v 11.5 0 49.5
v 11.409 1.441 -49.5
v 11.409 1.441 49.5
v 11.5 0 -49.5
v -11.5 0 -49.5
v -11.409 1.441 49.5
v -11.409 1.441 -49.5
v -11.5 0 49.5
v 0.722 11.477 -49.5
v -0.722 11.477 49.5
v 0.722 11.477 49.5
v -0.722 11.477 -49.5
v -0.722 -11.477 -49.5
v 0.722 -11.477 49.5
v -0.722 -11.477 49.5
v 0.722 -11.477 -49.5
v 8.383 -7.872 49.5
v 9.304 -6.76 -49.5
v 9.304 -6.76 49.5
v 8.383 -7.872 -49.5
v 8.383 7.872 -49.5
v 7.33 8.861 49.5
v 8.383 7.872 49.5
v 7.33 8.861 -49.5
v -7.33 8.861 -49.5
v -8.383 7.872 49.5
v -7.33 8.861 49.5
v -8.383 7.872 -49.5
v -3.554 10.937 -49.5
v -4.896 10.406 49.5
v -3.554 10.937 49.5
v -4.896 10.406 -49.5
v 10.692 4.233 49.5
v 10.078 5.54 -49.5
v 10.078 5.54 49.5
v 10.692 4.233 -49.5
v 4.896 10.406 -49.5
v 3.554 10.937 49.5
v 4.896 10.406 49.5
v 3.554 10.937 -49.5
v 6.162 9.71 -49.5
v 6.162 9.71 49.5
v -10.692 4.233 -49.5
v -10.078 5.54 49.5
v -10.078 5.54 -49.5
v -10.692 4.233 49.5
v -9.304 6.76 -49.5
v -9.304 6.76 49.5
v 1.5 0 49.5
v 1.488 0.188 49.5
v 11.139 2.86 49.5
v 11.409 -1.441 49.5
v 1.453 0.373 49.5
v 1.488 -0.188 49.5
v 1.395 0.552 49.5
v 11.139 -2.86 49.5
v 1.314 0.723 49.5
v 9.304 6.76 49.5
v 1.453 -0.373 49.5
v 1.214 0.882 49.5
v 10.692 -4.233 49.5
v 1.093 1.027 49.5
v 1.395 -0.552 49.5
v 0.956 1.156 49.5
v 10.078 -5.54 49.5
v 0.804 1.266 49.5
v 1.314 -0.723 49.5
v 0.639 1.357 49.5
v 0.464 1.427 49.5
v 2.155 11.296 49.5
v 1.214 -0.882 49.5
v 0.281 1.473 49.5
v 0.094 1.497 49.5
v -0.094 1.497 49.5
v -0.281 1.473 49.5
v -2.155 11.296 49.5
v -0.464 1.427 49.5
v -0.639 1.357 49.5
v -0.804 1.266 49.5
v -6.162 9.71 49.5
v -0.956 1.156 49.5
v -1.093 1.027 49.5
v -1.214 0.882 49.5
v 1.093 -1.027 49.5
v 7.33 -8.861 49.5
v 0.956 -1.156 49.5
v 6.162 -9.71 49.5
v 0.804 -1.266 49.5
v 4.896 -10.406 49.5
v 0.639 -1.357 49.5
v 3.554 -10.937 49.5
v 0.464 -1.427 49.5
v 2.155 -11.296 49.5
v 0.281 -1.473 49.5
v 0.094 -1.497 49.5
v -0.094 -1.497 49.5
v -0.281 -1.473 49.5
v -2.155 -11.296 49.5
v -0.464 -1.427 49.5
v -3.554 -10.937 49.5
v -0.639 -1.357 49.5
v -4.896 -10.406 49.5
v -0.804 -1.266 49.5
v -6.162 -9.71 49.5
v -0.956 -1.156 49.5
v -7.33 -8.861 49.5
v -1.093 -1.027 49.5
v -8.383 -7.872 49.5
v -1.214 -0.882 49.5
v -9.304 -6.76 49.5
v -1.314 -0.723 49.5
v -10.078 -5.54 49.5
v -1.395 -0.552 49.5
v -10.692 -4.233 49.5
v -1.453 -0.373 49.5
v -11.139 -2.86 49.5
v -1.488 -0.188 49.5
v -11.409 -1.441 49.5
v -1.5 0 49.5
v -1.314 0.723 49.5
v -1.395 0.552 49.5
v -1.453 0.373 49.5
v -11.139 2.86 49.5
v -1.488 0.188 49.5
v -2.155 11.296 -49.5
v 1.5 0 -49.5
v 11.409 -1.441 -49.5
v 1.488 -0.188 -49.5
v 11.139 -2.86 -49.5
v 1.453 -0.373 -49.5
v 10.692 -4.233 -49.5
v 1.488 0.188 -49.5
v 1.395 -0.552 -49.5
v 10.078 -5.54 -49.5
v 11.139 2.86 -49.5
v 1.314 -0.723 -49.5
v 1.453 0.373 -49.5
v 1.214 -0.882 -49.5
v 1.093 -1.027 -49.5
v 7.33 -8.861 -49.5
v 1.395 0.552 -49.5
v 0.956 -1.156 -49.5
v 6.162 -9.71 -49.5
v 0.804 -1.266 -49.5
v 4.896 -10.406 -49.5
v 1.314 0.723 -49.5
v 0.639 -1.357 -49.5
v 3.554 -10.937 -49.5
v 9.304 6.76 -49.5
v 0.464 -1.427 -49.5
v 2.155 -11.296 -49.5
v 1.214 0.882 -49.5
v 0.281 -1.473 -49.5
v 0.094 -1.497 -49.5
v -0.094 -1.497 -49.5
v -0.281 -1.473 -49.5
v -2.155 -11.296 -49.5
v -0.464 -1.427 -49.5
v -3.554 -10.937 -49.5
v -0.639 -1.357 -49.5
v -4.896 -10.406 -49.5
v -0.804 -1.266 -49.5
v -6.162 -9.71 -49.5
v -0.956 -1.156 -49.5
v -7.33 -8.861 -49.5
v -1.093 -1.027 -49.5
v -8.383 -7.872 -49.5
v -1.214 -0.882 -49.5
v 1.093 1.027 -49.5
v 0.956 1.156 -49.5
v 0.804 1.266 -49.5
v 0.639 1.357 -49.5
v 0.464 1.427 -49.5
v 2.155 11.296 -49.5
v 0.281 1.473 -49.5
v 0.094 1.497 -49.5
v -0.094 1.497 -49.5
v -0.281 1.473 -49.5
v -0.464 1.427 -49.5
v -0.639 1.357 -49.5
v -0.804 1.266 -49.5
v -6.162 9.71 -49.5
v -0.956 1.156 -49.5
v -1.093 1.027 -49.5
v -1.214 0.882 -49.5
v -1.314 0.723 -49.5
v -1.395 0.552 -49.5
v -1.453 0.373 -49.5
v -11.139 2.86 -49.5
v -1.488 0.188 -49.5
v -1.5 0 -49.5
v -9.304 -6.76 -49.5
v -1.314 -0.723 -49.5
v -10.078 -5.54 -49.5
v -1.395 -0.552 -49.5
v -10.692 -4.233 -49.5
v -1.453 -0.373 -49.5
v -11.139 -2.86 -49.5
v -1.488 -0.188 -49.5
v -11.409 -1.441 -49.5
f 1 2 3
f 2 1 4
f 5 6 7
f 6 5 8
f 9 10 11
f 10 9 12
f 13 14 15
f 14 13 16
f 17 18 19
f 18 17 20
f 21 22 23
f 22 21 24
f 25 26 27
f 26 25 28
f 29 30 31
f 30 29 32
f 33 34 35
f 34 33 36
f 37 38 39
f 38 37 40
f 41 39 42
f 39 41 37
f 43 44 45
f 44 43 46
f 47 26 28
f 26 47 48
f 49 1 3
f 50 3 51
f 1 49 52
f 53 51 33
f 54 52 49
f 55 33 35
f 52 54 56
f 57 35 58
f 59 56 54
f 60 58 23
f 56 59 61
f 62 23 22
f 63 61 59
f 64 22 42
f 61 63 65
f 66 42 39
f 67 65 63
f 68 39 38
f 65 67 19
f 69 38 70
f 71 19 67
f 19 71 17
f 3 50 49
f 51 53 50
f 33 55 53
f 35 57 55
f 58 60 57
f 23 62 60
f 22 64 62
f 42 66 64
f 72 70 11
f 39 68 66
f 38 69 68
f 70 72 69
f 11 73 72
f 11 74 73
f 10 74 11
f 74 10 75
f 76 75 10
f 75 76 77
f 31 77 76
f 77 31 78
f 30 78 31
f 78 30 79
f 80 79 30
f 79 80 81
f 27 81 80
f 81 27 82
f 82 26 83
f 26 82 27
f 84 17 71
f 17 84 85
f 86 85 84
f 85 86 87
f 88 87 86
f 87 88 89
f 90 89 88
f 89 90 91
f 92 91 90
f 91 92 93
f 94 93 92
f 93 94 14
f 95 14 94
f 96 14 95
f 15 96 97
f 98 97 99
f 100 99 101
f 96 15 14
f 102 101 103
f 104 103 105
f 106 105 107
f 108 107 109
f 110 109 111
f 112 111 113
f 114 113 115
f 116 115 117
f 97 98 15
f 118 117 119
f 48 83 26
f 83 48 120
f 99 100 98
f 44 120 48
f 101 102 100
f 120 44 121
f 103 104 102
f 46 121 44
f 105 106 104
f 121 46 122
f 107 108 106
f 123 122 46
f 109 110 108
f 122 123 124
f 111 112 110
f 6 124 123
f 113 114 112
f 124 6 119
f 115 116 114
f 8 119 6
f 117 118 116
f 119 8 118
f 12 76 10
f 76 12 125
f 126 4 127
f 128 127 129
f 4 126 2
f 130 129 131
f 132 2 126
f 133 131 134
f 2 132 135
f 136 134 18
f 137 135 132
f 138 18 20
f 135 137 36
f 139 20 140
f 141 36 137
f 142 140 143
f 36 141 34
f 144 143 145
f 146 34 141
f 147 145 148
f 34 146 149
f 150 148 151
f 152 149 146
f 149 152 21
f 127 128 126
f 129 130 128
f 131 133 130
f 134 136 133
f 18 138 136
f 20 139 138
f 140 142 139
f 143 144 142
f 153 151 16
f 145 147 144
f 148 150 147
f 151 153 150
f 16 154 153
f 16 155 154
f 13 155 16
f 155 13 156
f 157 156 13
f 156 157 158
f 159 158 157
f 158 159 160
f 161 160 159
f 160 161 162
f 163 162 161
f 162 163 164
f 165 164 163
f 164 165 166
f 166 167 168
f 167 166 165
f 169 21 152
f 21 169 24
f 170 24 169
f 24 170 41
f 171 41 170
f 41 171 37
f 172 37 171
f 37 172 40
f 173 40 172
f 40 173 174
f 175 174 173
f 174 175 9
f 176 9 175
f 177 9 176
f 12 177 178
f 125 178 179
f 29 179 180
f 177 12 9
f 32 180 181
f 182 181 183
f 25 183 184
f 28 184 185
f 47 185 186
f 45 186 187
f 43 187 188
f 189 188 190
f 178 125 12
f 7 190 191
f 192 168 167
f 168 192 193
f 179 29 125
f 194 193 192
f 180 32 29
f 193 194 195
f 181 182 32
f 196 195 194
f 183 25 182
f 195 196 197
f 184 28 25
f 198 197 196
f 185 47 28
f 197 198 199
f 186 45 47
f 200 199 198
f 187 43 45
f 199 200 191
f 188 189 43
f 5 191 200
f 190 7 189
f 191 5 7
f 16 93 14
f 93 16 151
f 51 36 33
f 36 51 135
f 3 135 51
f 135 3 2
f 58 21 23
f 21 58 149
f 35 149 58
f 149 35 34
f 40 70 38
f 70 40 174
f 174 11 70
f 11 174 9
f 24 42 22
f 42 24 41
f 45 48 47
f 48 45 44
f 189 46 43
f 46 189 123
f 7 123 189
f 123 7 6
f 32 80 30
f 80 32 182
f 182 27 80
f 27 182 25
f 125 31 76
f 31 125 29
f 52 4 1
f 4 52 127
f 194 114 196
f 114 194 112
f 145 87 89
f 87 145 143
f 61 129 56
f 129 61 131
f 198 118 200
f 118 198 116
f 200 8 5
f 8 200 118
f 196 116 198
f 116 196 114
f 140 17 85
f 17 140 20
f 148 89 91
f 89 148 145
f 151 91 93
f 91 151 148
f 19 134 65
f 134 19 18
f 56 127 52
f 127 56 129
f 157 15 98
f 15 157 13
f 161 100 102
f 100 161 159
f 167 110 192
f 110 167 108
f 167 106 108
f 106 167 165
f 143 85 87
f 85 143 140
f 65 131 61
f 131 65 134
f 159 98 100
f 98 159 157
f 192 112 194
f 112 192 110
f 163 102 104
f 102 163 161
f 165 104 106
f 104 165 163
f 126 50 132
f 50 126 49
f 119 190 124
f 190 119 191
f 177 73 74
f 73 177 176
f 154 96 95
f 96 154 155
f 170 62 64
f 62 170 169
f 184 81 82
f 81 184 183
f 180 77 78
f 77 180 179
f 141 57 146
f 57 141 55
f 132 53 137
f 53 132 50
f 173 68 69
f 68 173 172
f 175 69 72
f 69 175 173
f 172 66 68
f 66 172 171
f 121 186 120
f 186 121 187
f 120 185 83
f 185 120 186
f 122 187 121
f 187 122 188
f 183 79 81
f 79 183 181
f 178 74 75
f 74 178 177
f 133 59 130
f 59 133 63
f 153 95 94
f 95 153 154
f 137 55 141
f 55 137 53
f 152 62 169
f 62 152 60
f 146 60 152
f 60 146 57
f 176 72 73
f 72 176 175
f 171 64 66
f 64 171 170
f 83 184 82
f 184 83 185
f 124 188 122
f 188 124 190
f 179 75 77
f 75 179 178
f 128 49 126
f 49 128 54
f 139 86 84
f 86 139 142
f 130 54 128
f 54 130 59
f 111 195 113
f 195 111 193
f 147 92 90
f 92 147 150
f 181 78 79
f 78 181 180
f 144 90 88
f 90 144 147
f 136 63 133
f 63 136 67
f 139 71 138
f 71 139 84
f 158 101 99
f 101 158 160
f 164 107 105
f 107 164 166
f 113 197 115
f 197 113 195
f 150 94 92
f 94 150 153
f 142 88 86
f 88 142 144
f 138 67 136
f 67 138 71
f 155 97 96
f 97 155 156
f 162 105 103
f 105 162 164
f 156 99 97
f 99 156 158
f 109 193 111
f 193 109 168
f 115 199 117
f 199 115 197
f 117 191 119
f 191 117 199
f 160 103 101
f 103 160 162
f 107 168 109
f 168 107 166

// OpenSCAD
$fn = 50;


difference() {
	union() {
		translate(v = [0, 0, -49.5000000000]) {
			cylinder(h = 99, r = 11.5000000000);
		}
	}
	union() {
		translate(v = [0, 0, -100.0000000000]) {
			cylinder(h = 200, r = 1.5000000000);
		}
	}
}
